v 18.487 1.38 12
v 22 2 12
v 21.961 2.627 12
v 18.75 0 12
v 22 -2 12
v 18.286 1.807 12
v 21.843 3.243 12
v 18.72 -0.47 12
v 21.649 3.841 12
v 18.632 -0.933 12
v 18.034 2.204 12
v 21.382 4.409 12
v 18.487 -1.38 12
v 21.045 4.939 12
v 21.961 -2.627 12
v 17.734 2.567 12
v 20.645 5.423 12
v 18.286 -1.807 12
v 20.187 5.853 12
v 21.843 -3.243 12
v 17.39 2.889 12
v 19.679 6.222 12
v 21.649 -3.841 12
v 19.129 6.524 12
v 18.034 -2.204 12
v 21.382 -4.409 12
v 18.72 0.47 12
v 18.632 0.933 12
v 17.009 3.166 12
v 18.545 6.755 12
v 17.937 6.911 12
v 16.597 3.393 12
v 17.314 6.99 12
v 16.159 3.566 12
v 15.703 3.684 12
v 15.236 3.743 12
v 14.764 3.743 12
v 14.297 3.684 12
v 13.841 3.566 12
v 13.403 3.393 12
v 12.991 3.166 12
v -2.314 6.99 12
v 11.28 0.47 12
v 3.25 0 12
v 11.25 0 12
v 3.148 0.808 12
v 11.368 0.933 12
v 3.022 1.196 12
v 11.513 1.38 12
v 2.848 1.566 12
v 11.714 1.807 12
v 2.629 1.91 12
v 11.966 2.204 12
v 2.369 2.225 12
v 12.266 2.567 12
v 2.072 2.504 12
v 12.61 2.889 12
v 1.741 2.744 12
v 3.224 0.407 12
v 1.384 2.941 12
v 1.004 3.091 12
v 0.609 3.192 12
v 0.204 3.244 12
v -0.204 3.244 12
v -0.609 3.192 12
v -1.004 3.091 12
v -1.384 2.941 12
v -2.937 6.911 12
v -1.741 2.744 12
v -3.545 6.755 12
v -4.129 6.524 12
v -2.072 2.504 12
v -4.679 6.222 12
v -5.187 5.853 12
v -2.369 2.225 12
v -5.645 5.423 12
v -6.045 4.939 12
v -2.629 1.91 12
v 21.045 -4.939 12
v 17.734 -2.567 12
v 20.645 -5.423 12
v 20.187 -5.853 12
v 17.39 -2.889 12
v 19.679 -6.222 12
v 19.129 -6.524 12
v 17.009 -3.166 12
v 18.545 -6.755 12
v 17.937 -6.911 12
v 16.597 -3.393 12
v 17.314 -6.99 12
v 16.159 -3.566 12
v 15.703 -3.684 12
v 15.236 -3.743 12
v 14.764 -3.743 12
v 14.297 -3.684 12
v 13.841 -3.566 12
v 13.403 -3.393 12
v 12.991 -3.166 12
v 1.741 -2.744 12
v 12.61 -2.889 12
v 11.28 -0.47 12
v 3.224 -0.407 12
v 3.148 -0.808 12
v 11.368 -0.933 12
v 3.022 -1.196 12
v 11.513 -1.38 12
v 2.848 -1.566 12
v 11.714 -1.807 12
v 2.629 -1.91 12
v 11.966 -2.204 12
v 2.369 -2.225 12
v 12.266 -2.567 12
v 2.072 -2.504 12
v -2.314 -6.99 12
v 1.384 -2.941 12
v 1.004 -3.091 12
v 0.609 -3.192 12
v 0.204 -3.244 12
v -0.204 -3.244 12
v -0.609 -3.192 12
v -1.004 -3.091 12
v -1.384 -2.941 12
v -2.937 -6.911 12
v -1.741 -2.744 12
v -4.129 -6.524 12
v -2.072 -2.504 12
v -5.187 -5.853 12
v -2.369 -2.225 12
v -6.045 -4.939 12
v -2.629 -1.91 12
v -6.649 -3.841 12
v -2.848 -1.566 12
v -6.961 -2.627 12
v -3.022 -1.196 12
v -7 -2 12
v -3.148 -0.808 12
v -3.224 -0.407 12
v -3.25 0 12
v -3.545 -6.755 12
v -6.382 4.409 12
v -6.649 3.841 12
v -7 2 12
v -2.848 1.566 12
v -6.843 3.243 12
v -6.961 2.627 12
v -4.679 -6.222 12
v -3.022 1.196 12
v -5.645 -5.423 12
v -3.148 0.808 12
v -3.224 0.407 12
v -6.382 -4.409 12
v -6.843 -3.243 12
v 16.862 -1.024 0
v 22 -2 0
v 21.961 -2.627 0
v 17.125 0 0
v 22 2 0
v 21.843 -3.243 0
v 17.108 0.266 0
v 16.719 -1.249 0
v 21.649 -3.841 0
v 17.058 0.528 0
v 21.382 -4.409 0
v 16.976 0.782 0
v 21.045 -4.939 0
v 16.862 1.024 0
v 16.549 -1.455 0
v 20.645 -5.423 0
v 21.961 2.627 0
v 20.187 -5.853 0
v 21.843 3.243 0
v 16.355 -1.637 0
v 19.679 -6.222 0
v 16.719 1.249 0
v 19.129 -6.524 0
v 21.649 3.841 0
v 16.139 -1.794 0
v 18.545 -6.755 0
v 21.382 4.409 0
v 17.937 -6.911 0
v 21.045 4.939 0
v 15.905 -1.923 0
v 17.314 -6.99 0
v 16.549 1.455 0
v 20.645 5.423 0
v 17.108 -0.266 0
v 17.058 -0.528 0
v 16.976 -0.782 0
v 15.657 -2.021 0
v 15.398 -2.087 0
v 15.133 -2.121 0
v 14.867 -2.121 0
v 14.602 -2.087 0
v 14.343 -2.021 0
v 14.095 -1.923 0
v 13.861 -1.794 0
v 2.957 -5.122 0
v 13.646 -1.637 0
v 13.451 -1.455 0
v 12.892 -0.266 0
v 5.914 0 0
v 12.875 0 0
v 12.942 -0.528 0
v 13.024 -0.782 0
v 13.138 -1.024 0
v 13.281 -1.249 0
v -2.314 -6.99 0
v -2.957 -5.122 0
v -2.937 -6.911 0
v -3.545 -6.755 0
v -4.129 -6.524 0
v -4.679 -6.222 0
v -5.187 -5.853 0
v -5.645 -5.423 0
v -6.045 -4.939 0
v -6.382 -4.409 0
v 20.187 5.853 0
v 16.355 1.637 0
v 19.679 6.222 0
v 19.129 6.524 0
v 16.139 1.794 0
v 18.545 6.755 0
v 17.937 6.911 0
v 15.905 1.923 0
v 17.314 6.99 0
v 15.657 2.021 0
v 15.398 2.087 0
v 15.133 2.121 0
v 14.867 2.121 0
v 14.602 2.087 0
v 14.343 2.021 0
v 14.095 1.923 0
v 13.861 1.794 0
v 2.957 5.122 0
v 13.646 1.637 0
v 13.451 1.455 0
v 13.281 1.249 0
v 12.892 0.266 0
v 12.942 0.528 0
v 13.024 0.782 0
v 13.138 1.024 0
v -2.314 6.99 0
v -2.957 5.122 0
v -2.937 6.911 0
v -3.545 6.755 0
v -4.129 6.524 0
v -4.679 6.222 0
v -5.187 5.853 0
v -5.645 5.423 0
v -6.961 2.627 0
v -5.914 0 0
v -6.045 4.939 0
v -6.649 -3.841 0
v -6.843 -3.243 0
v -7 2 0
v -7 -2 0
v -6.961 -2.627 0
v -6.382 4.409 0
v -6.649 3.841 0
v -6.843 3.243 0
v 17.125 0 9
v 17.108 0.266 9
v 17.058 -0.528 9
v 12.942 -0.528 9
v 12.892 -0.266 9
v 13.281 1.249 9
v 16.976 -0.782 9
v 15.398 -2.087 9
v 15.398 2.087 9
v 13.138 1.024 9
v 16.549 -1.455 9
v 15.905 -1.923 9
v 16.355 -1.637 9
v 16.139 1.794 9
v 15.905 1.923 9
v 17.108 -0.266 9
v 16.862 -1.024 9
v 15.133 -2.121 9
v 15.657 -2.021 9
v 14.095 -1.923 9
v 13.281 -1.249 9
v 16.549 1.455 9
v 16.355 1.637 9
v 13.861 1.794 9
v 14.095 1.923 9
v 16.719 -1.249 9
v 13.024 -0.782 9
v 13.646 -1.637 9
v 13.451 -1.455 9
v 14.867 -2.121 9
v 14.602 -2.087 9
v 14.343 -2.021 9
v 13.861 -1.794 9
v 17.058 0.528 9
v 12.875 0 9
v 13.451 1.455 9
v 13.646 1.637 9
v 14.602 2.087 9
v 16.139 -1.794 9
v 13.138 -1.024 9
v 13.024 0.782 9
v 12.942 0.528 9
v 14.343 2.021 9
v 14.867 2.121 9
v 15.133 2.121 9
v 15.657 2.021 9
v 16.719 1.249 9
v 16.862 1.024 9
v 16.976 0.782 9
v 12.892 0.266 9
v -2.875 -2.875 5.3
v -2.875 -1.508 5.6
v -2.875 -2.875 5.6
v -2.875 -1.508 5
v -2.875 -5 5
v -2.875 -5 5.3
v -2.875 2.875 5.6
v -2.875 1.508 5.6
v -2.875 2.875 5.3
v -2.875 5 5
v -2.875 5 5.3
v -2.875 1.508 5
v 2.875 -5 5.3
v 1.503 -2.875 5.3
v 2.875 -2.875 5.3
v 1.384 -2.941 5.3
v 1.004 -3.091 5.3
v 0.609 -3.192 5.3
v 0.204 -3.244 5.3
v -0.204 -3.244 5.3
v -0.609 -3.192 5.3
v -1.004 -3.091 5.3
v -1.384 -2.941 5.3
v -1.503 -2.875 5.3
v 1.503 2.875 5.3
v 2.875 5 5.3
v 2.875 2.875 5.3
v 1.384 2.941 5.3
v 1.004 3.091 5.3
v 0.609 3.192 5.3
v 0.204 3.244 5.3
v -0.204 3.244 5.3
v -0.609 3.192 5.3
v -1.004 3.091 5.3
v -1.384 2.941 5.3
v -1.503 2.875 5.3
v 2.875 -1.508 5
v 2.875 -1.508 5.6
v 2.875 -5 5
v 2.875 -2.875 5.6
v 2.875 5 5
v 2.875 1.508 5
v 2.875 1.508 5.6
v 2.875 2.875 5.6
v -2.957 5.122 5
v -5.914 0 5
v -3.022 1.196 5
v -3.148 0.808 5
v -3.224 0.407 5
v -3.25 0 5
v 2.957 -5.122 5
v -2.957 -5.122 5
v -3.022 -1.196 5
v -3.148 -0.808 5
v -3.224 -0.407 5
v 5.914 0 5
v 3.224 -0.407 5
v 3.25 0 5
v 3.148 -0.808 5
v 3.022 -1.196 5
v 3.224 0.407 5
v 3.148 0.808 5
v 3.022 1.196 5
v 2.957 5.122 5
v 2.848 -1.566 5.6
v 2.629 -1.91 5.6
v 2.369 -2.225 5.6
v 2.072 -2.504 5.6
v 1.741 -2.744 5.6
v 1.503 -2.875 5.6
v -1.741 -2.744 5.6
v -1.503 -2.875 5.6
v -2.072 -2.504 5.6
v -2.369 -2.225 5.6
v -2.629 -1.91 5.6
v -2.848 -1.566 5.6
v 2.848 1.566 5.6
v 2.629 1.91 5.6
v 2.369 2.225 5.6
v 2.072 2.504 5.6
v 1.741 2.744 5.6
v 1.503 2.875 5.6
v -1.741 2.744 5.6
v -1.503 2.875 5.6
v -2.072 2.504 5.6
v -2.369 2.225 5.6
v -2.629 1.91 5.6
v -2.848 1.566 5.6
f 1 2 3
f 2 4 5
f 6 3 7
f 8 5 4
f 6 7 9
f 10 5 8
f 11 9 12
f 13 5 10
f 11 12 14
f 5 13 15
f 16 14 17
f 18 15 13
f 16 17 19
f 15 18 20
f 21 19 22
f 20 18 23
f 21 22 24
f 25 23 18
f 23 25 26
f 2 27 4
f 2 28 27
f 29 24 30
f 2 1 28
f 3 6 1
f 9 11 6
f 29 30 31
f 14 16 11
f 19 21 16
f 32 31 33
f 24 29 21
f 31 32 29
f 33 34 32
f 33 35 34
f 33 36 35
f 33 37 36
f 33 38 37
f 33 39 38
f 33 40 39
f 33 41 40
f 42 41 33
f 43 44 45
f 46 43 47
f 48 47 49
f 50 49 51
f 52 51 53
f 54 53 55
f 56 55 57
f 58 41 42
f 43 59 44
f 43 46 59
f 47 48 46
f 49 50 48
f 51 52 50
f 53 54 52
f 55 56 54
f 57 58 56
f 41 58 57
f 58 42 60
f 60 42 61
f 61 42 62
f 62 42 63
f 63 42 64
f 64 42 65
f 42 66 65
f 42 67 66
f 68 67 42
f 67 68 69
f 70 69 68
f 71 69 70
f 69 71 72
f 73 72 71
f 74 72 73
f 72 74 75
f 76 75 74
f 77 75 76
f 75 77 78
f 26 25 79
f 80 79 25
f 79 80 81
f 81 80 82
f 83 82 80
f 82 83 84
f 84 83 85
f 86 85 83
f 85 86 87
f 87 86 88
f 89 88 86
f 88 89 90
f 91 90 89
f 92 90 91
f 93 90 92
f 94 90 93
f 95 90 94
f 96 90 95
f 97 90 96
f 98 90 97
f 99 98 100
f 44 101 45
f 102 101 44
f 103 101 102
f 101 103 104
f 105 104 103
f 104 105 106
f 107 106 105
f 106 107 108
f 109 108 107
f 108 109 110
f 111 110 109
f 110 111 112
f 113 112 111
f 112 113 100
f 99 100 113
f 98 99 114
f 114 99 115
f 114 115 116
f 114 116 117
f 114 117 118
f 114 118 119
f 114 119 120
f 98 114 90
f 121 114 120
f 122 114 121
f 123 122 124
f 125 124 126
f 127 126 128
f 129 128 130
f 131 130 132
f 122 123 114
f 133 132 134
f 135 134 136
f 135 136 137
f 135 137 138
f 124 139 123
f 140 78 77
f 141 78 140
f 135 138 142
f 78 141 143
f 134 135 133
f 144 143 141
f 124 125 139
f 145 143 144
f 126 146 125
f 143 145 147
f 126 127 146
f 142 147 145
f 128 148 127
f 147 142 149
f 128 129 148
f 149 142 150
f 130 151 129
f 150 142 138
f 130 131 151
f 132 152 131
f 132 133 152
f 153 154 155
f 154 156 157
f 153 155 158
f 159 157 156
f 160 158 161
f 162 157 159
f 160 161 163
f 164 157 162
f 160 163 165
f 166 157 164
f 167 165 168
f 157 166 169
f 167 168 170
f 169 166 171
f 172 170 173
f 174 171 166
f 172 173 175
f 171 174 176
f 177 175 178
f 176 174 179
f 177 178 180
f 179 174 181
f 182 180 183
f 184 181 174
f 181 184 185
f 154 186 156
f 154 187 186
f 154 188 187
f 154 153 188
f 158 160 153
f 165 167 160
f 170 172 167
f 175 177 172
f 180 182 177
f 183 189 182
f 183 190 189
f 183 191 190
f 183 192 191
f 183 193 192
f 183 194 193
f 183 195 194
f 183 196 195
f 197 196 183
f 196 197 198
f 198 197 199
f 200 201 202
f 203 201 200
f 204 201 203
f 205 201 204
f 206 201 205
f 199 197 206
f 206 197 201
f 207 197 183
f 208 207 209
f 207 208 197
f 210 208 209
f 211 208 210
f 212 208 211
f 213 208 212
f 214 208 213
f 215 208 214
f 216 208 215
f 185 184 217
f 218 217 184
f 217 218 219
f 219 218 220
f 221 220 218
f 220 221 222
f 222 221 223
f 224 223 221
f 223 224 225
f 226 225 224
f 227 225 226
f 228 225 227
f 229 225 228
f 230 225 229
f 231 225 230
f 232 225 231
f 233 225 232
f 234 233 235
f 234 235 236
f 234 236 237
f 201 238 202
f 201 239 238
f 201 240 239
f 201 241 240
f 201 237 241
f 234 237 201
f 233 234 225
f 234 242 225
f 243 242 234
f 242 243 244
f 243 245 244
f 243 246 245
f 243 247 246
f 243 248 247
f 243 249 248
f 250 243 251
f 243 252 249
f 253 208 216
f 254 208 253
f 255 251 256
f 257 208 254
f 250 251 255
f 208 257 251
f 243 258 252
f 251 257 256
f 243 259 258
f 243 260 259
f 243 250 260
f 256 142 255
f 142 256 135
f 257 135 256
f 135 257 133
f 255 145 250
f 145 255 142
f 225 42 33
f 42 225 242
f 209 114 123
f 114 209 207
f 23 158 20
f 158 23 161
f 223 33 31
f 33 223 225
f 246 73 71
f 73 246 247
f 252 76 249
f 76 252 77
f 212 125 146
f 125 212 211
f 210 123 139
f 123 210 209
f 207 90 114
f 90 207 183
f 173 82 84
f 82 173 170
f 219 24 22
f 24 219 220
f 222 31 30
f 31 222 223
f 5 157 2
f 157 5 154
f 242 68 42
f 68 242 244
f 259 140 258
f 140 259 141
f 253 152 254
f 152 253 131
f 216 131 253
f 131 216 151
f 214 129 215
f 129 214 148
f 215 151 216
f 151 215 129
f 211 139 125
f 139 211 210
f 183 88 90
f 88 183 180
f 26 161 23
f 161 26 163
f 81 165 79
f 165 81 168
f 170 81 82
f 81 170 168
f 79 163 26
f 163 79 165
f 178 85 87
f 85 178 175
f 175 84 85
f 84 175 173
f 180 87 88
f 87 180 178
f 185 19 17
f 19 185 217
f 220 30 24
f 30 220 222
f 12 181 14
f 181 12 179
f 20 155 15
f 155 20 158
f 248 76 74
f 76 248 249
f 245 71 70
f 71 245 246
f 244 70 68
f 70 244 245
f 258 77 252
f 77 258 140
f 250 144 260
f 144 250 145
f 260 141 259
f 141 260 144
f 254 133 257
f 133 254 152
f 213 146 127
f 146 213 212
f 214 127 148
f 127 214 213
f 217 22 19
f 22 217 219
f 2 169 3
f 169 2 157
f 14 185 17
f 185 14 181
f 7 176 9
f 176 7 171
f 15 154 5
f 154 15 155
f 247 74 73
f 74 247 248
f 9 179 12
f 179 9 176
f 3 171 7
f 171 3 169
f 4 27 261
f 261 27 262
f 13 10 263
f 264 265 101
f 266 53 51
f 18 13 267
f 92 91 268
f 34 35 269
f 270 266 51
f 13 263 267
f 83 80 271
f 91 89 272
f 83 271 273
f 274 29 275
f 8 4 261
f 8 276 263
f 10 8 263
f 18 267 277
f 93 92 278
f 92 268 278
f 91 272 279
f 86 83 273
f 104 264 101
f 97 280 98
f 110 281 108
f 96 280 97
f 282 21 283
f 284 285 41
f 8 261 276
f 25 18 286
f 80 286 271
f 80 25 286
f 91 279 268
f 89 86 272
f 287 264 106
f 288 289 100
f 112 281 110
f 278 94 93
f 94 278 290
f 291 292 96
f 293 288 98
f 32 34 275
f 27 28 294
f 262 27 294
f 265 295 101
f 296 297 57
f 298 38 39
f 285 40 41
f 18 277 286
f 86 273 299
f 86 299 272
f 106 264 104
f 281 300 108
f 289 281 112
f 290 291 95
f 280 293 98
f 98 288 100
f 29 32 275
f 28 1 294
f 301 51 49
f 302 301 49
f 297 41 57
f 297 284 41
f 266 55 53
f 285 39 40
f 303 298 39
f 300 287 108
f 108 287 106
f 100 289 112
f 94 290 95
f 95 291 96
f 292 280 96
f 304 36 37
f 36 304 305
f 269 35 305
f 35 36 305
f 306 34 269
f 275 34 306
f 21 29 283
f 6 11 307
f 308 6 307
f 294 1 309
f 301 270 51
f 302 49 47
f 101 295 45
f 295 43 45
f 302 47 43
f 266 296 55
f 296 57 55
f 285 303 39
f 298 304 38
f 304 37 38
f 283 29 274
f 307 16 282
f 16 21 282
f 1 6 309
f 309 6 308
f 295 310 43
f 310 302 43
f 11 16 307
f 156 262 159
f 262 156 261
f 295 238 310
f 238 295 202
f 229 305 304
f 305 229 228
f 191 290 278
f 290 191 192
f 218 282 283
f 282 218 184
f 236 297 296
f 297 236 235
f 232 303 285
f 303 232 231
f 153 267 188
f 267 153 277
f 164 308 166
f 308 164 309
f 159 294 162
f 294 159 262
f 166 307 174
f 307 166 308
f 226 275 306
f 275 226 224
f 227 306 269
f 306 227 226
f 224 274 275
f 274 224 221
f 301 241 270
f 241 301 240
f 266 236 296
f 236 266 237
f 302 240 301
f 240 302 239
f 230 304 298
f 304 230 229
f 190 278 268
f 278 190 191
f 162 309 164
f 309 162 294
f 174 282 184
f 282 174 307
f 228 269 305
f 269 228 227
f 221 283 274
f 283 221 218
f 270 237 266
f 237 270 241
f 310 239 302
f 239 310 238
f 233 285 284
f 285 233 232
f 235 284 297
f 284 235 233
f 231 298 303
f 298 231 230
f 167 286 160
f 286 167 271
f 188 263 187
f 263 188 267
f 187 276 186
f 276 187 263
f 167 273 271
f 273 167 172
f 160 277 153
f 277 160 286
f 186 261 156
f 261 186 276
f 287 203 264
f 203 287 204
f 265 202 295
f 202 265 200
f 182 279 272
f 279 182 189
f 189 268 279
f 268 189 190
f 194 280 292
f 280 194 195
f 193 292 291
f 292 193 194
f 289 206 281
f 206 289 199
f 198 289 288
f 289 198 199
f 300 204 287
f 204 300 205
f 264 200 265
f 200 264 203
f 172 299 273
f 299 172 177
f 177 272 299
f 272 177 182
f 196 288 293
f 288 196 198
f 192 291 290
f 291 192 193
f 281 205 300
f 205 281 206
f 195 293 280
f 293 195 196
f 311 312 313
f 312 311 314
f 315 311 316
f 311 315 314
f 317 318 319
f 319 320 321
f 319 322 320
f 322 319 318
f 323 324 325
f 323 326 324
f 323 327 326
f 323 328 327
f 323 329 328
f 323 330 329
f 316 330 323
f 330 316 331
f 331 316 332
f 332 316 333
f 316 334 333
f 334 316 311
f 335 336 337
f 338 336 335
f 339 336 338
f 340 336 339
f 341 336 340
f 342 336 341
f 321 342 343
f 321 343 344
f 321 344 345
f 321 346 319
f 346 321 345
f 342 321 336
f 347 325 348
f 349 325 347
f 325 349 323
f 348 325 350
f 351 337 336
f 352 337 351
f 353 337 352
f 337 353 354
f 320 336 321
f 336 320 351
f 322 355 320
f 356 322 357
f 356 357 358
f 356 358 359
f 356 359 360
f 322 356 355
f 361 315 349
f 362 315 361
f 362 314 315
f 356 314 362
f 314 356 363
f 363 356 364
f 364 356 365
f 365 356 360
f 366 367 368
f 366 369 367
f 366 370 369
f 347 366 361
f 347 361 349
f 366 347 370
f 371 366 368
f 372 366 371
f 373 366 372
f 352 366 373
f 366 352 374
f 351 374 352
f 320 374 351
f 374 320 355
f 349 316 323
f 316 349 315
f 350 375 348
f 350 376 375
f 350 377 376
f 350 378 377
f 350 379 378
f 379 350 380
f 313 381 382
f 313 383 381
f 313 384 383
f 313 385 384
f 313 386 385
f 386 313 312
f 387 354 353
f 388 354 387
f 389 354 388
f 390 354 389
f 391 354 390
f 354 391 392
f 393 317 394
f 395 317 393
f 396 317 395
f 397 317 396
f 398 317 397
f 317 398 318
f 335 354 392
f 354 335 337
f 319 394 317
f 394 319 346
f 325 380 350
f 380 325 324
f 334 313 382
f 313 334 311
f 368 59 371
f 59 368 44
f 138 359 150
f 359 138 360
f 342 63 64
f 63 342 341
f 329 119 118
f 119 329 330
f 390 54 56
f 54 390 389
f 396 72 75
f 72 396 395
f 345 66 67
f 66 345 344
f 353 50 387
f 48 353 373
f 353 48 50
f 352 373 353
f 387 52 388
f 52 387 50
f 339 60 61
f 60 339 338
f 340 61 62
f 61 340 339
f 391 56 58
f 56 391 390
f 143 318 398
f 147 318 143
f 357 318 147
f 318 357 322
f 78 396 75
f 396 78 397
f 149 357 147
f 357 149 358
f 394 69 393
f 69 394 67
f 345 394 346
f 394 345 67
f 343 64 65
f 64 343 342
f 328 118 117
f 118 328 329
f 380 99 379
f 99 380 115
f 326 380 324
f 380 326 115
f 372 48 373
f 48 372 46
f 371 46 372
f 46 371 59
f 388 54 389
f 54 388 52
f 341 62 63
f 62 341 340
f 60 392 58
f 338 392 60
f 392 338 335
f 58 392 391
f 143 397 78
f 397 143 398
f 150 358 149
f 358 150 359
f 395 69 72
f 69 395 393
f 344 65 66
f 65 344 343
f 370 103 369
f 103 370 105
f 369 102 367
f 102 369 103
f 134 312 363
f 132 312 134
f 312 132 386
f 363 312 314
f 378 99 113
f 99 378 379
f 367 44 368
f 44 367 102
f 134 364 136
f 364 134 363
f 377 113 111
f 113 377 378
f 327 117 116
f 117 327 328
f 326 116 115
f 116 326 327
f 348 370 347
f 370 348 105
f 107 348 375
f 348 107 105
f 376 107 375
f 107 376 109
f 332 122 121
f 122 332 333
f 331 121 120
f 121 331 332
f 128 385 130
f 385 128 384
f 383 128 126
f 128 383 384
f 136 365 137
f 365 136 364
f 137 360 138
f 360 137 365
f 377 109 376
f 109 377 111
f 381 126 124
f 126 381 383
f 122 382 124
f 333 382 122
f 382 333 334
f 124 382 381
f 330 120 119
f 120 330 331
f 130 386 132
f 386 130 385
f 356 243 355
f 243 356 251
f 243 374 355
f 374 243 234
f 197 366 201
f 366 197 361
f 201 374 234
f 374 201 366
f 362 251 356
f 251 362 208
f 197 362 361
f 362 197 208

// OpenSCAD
$fn = 50;


difference() {
	union() {
		cylinder(h = 12, r = 7.0000000000);
		translate(v = [7.5000000000, 0.0000000000, 0]) {
			hull() {
				translate(v = [-9.5000000000, 2.0000000000, 0]) {
					cylinder(h = 12, r = 5);
				}
				translate(v = [9.5000000000, 2.0000000000, 0]) {
					cylinder(h = 12, r = 5);
				}
				translate(v = [-9.5000000000, -2.0000000000, 0]) {
					cylinder(h = 12, r = 5);
				}
				translate(v = [9.5000000000, -2.0000000000, 0]) {
					cylinder(h = 12, r = 5);
				}
			}
		}
		translate(v = [7.5000000000, 0.0000000000, 0]) {
			hull() {
				translate(v = [-9.5000000000, 2.0000000000, 0]) {
					cylinder(h = 12, r = 5);
				}
				translate(v = [9.5000000000, 2.0000000000, 0]) {
					cylinder(h = 12, r = 5);
				}
				translate(v = [-9.5000000000, -2.0000000000, 0]) {
					cylinder(h = 12, r = 5);
				}
				translate(v = [9.5000000000, -2.0000000000, 0]) {
					cylinder(h = 12, r = 5);
				}
			}
		}
	}
	union() {
		translate(v = [15.0000000000, 0.0000000000, 12]) {
			rotate(a = [0, 0, 0]) {
				difference() {
					union() {
						#translate(v = [0, 0, -12.0000000000]) {
							cylinder(h = 12, r = 2.0000000000);
						}
						#translate(v = [0, 0, -3]) {
							cylinder(h = 3, r1 = 2.1250000000, r2 = 3.7500000000);
						}
						#translate(v = [0, 0, -12.0000000000]) {
							cylinder(h = 12, r = 2.1250000000);
						}
						#translate(v = [0, 0, -12.0000000000]) {
							cylinder(h = 12, r = 2.0000000000);
						}
					}
					union();
				}
			}
		}
		translate(v = [15.0000000000, 0.0000000000, 12]) {
			rotate(a = [0, 0, 0]) {
				difference() {
					union() {
						#translate(v = [0, 0, -12.0000000000]) {
							cylinder(h = 12, r = 2.0000000000);
						}
						#translate(v = [0, 0, -3]) {
							cylinder(h = 3, r1 = 2.1250000000, r2 = 3.7500000000);
						}
						#translate(v = [0, 0, -12.0000000000]) {
							cylinder(h = 12, r = 2.1250000000);
						}
						#translate(v = [0, 0, -12.0000000000]) {
							cylinder(h = 12, r = 2.0000000000);
						}
					}
					union();
				}
			}
		}
		translate(v = [0.0000000000, 0.0000000000, 0]) {
			rotate(a = [0, 0, 0]) {
				difference() {
					union() {
						#translate(v = [-2.8750000000, -5.0000000000, -0.3000000000]) {
							cube(size = [5.7500000000, 10, 0.3000000000]);
						}
						#translate(v = [-2.8750000000, -2.8750000000, -0.6000000000]) {
							cube(size = [5.7500000000, 5.7500000000, 0.3000000000]);
						}
						#translate(v = [-2.8750000000, -5.0000000000, 5]) {
							cube(size = [5.7500000000, 10, 0.3000000000]);
						}
						#translate(v = [-2.8750000000, -2.8750000000, 5.3000000000]) {
							cube(size = [5.7500000000, 5.7500000000, 0.3000000000]);
						}
						#translate(v = [0, 0, -100.0000000000]) {
							cylinder(h = 200, r = 3.2500000000);
						}
						#linear_extrude(height = 5) {
							polygon(points = [[5.9142500000, 0.0000000000], [2.9571250000, 5.1218907443], [-2.9571250000, 5.1218907443], [-5.9142500000, 0.0000000000], [-2.9571250000, -5.1218907443], [2.9571250000, -5.1218907443]]);
						}
						#translate(v = [-2.8750000000, -5.0000000000, -0.3000000000]) {
							cube(size = [5.7500000000, 10, 0.3000000000]);
						}
						#translate(v = [-2.8750000000, -2.8750000000, -0.6000000000]) {
							cube(size = [5.7500000000, 5.7500000000, 0.3000000000]);
						}
						#translate(v = [-2.8750000000, -5.0000000000, 5]) {
							cube(size = [5.7500000000, 10, 0.3000000000]);
						}
						#translate(v = [-2.8750000000, -2.8750000000, 5.3000000000]) {
							cube(size = [5.7500000000, 5.7500000000, 0.3000000000]);
						}
						#translate(v = [0, 0, -100.0000000000]) {
							cylinder(h = 200, r = 3.2500000000);
						}
						#translate(v = [-2.8750000000, -5.0000000000, -0.3000000000]) {
							cube(size = [5.7500000000, 10, 0.3000000000]);
						}
						#translate(v = [-2.8750000000, -2.8750000000, -0.6000000000]) {
							cube(size = [5.7500000000, 5.7500000000, 0.3000000000]);
						}
						#translate(v = [-2.8750000000, -5.0000000000, 5]) {
							cube(size = [5.7500000000, 10, 0.3000000000]);
						}
						#translate(v = [-2.8750000000, -2.8750000000, 5.3000000000]) {
							cube(size = [5.7500000000, 5.7500000000, 0.3000000000]);
						}
						#translate(v = [0, 0, -100.0000000000]) {
							cylinder(h = 200, r = 3.2500000000);
						}
					}
					union();
				}
			}
		}
		translate(v = [0, 0, -100]) {
			cylinder(h = 200, r = 3.2500000000);
		}
		translate(v = [0, 0, -100]) {
			cylinder(h = 200, r = 1.8000000000);
		}
	}
}
